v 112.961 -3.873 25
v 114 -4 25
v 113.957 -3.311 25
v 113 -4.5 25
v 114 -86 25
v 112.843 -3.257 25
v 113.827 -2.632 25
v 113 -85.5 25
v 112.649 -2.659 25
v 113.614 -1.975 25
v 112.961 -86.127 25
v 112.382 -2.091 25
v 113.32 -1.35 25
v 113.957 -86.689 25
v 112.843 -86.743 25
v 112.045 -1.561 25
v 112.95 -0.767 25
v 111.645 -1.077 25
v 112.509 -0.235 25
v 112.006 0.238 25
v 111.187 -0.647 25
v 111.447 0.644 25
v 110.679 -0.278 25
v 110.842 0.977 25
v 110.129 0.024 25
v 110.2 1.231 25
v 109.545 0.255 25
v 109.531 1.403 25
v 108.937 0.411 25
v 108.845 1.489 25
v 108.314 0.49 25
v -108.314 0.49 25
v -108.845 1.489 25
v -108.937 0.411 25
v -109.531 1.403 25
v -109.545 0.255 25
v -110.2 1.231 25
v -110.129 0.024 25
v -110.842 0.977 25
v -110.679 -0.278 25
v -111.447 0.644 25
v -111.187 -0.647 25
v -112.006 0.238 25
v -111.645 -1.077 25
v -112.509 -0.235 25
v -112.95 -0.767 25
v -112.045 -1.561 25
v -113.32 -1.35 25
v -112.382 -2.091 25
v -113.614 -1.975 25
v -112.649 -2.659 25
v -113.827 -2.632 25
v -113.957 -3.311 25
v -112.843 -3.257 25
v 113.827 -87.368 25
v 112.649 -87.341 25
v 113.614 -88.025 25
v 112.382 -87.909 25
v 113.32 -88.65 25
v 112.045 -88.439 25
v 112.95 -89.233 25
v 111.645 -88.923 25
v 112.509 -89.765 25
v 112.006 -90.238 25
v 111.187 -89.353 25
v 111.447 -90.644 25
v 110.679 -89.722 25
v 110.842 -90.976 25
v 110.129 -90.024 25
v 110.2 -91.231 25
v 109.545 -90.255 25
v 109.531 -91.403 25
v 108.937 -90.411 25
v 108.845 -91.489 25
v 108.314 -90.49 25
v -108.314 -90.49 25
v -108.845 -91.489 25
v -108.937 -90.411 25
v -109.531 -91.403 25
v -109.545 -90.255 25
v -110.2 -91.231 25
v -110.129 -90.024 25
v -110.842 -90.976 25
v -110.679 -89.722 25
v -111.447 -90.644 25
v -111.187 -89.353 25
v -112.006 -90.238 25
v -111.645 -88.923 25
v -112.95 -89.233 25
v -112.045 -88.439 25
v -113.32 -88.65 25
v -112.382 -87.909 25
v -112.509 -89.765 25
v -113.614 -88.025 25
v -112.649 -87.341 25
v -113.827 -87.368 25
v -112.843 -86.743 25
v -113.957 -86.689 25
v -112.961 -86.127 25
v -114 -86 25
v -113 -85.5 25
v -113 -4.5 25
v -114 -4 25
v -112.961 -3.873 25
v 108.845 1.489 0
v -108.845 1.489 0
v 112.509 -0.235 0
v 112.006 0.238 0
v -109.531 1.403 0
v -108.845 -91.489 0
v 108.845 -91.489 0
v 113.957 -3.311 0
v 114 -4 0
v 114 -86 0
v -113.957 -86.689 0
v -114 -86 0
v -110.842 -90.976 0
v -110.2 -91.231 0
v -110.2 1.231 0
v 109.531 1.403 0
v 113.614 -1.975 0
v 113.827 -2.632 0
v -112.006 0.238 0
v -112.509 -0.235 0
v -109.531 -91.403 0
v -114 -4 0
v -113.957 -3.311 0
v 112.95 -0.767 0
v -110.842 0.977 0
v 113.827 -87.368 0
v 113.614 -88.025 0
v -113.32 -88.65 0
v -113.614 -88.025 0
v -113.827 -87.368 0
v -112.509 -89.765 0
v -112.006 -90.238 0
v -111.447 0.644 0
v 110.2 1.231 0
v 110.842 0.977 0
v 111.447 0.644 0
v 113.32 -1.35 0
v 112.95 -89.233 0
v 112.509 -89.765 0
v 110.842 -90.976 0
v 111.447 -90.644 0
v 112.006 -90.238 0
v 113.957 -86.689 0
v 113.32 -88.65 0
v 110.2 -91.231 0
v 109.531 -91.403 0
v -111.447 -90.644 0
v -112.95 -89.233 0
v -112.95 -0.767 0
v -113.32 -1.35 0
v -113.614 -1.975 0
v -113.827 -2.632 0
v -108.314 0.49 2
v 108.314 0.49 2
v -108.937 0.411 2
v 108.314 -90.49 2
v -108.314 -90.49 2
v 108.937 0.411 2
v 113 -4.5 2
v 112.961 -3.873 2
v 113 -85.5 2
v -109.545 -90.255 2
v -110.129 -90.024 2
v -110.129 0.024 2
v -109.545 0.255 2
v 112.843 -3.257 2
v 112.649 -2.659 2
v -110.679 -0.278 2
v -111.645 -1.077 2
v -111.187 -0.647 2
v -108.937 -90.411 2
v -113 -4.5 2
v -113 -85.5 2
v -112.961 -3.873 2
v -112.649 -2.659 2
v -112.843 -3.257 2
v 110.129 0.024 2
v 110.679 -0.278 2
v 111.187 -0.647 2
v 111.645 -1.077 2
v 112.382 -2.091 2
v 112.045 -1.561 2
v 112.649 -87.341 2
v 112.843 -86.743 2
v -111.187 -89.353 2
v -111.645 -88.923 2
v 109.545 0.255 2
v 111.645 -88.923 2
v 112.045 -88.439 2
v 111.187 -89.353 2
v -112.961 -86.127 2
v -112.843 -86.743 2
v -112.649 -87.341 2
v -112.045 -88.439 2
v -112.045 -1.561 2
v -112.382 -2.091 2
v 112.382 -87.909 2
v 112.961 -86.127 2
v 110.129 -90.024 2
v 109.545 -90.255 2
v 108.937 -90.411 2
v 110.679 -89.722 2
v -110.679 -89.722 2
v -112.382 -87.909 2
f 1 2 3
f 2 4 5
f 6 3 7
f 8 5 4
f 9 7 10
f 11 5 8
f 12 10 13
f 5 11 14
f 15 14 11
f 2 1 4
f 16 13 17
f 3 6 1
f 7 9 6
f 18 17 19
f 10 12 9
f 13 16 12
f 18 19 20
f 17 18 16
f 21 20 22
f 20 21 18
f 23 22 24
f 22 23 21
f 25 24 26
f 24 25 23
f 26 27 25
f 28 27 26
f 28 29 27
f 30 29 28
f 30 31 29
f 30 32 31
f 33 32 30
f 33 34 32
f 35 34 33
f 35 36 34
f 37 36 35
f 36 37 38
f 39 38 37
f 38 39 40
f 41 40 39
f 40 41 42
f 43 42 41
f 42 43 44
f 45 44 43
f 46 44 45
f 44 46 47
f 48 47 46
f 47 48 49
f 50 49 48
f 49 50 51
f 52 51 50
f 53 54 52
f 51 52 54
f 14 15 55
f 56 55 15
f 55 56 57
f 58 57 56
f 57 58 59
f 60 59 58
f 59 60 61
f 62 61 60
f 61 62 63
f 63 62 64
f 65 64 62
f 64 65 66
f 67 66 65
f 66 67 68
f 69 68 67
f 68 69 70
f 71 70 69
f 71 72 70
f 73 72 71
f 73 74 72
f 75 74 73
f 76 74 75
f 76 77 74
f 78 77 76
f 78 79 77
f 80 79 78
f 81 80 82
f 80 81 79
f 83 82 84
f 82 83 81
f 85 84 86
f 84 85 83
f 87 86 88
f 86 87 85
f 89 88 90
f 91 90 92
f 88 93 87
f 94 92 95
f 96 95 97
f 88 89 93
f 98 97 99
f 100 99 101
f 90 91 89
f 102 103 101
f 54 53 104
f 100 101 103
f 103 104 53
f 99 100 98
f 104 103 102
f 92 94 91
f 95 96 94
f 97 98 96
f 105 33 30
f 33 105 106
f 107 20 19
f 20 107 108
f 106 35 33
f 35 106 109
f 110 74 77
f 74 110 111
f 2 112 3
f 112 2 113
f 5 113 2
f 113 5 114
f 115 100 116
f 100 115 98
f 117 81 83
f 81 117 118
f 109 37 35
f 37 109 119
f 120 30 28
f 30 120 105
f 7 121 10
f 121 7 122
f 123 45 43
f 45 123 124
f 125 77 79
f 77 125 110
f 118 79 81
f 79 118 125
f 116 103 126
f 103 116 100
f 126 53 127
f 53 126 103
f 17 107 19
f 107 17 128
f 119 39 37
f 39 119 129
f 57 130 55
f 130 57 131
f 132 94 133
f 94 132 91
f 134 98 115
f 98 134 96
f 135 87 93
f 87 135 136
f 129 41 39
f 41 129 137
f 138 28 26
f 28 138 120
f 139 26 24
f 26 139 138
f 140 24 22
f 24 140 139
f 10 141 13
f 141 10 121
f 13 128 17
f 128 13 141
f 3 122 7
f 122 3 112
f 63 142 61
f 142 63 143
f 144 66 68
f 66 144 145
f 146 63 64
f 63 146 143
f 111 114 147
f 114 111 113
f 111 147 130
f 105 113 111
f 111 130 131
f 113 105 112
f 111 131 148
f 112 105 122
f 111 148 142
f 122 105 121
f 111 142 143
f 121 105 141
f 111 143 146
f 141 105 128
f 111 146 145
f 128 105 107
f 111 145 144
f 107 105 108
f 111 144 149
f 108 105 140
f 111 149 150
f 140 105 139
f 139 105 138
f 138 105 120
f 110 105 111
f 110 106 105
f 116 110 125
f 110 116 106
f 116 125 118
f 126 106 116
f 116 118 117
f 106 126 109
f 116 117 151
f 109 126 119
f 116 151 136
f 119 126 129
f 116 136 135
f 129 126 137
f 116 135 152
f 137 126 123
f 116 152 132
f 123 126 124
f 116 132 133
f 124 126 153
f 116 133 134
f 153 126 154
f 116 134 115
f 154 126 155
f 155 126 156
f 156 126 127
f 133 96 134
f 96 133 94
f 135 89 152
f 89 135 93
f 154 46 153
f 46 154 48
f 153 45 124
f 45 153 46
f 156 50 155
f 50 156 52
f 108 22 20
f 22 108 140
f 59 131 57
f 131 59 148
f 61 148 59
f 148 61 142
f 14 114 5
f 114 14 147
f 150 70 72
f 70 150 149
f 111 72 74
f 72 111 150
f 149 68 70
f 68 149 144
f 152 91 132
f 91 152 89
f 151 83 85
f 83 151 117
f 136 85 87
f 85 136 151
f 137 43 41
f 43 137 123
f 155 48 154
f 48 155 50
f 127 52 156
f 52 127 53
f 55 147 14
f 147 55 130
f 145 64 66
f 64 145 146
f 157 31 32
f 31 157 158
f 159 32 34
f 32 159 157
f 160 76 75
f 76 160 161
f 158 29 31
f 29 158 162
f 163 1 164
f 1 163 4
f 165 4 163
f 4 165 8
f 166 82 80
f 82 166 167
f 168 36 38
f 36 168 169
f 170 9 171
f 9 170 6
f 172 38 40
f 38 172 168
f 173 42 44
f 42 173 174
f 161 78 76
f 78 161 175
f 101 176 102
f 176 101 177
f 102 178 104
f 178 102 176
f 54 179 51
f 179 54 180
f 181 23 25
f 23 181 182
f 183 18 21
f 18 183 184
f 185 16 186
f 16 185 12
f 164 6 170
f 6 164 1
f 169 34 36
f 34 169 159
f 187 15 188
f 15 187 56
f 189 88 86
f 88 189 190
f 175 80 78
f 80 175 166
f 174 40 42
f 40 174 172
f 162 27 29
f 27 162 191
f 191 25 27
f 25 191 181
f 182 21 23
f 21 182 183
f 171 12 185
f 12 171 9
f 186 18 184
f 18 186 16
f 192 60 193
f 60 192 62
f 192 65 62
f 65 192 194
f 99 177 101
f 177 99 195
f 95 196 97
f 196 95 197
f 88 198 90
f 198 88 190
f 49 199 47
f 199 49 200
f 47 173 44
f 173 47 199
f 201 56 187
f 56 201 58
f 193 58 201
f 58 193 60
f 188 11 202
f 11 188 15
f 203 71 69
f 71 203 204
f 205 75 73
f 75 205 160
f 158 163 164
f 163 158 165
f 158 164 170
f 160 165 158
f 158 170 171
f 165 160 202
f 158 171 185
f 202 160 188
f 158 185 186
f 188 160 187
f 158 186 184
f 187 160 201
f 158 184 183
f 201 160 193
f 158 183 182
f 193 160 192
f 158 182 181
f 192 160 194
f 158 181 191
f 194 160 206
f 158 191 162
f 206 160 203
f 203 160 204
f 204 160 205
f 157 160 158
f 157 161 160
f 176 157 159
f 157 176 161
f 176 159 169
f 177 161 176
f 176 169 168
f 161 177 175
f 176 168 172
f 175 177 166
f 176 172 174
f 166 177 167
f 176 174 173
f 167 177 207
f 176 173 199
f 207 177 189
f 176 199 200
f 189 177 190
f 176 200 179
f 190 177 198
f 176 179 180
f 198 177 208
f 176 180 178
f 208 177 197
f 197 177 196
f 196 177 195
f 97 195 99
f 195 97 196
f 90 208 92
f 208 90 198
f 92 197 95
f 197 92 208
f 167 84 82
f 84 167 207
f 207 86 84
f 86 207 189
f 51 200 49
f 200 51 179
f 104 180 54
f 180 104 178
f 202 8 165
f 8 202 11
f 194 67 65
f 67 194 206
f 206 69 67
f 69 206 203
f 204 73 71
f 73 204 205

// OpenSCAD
$fn = 50;


difference() {
	union() {
		translate(v = [0, -45.0000000000, 0]) {
			hull() {
				translate(v = [-108.5000000000, 41.0000000000, 0]) {
					cylinder(h = 25, r = 5.5000000000);
				}
				translate(v = [108.5000000000, 41.0000000000, 0]) {
					cylinder(h = 25, r = 5.5000000000);
				}
				translate(v = [-108.5000000000, -41.0000000000, 0]) {
					cylinder(h = 25, r = 5.5000000000);
				}
				translate(v = [108.5000000000, -41.0000000000, 0]) {
					cylinder(h = 25, r = 5.5000000000);
				}
			}
		}
	}
	union() {
		translate(v = [0, -45.0000000000, 2]) {
			hull() {
				translate(v = [-108.0000000000, 40.5000000000, 0]) {
					cylinder(h = 50, r = 5);
				}
				translate(v = [108.0000000000, 40.5000000000, 0]) {
					cylinder(h = 50, r = 5);
				}
				translate(v = [-108.0000000000, -40.5000000000, 0]) {
					cylinder(h = 50, r = 5);
				}
				translate(v = [108.0000000000, -40.5000000000, 0]) {
					cylinder(h = 50, r = 5);
				}
			}
		}
	}
}
